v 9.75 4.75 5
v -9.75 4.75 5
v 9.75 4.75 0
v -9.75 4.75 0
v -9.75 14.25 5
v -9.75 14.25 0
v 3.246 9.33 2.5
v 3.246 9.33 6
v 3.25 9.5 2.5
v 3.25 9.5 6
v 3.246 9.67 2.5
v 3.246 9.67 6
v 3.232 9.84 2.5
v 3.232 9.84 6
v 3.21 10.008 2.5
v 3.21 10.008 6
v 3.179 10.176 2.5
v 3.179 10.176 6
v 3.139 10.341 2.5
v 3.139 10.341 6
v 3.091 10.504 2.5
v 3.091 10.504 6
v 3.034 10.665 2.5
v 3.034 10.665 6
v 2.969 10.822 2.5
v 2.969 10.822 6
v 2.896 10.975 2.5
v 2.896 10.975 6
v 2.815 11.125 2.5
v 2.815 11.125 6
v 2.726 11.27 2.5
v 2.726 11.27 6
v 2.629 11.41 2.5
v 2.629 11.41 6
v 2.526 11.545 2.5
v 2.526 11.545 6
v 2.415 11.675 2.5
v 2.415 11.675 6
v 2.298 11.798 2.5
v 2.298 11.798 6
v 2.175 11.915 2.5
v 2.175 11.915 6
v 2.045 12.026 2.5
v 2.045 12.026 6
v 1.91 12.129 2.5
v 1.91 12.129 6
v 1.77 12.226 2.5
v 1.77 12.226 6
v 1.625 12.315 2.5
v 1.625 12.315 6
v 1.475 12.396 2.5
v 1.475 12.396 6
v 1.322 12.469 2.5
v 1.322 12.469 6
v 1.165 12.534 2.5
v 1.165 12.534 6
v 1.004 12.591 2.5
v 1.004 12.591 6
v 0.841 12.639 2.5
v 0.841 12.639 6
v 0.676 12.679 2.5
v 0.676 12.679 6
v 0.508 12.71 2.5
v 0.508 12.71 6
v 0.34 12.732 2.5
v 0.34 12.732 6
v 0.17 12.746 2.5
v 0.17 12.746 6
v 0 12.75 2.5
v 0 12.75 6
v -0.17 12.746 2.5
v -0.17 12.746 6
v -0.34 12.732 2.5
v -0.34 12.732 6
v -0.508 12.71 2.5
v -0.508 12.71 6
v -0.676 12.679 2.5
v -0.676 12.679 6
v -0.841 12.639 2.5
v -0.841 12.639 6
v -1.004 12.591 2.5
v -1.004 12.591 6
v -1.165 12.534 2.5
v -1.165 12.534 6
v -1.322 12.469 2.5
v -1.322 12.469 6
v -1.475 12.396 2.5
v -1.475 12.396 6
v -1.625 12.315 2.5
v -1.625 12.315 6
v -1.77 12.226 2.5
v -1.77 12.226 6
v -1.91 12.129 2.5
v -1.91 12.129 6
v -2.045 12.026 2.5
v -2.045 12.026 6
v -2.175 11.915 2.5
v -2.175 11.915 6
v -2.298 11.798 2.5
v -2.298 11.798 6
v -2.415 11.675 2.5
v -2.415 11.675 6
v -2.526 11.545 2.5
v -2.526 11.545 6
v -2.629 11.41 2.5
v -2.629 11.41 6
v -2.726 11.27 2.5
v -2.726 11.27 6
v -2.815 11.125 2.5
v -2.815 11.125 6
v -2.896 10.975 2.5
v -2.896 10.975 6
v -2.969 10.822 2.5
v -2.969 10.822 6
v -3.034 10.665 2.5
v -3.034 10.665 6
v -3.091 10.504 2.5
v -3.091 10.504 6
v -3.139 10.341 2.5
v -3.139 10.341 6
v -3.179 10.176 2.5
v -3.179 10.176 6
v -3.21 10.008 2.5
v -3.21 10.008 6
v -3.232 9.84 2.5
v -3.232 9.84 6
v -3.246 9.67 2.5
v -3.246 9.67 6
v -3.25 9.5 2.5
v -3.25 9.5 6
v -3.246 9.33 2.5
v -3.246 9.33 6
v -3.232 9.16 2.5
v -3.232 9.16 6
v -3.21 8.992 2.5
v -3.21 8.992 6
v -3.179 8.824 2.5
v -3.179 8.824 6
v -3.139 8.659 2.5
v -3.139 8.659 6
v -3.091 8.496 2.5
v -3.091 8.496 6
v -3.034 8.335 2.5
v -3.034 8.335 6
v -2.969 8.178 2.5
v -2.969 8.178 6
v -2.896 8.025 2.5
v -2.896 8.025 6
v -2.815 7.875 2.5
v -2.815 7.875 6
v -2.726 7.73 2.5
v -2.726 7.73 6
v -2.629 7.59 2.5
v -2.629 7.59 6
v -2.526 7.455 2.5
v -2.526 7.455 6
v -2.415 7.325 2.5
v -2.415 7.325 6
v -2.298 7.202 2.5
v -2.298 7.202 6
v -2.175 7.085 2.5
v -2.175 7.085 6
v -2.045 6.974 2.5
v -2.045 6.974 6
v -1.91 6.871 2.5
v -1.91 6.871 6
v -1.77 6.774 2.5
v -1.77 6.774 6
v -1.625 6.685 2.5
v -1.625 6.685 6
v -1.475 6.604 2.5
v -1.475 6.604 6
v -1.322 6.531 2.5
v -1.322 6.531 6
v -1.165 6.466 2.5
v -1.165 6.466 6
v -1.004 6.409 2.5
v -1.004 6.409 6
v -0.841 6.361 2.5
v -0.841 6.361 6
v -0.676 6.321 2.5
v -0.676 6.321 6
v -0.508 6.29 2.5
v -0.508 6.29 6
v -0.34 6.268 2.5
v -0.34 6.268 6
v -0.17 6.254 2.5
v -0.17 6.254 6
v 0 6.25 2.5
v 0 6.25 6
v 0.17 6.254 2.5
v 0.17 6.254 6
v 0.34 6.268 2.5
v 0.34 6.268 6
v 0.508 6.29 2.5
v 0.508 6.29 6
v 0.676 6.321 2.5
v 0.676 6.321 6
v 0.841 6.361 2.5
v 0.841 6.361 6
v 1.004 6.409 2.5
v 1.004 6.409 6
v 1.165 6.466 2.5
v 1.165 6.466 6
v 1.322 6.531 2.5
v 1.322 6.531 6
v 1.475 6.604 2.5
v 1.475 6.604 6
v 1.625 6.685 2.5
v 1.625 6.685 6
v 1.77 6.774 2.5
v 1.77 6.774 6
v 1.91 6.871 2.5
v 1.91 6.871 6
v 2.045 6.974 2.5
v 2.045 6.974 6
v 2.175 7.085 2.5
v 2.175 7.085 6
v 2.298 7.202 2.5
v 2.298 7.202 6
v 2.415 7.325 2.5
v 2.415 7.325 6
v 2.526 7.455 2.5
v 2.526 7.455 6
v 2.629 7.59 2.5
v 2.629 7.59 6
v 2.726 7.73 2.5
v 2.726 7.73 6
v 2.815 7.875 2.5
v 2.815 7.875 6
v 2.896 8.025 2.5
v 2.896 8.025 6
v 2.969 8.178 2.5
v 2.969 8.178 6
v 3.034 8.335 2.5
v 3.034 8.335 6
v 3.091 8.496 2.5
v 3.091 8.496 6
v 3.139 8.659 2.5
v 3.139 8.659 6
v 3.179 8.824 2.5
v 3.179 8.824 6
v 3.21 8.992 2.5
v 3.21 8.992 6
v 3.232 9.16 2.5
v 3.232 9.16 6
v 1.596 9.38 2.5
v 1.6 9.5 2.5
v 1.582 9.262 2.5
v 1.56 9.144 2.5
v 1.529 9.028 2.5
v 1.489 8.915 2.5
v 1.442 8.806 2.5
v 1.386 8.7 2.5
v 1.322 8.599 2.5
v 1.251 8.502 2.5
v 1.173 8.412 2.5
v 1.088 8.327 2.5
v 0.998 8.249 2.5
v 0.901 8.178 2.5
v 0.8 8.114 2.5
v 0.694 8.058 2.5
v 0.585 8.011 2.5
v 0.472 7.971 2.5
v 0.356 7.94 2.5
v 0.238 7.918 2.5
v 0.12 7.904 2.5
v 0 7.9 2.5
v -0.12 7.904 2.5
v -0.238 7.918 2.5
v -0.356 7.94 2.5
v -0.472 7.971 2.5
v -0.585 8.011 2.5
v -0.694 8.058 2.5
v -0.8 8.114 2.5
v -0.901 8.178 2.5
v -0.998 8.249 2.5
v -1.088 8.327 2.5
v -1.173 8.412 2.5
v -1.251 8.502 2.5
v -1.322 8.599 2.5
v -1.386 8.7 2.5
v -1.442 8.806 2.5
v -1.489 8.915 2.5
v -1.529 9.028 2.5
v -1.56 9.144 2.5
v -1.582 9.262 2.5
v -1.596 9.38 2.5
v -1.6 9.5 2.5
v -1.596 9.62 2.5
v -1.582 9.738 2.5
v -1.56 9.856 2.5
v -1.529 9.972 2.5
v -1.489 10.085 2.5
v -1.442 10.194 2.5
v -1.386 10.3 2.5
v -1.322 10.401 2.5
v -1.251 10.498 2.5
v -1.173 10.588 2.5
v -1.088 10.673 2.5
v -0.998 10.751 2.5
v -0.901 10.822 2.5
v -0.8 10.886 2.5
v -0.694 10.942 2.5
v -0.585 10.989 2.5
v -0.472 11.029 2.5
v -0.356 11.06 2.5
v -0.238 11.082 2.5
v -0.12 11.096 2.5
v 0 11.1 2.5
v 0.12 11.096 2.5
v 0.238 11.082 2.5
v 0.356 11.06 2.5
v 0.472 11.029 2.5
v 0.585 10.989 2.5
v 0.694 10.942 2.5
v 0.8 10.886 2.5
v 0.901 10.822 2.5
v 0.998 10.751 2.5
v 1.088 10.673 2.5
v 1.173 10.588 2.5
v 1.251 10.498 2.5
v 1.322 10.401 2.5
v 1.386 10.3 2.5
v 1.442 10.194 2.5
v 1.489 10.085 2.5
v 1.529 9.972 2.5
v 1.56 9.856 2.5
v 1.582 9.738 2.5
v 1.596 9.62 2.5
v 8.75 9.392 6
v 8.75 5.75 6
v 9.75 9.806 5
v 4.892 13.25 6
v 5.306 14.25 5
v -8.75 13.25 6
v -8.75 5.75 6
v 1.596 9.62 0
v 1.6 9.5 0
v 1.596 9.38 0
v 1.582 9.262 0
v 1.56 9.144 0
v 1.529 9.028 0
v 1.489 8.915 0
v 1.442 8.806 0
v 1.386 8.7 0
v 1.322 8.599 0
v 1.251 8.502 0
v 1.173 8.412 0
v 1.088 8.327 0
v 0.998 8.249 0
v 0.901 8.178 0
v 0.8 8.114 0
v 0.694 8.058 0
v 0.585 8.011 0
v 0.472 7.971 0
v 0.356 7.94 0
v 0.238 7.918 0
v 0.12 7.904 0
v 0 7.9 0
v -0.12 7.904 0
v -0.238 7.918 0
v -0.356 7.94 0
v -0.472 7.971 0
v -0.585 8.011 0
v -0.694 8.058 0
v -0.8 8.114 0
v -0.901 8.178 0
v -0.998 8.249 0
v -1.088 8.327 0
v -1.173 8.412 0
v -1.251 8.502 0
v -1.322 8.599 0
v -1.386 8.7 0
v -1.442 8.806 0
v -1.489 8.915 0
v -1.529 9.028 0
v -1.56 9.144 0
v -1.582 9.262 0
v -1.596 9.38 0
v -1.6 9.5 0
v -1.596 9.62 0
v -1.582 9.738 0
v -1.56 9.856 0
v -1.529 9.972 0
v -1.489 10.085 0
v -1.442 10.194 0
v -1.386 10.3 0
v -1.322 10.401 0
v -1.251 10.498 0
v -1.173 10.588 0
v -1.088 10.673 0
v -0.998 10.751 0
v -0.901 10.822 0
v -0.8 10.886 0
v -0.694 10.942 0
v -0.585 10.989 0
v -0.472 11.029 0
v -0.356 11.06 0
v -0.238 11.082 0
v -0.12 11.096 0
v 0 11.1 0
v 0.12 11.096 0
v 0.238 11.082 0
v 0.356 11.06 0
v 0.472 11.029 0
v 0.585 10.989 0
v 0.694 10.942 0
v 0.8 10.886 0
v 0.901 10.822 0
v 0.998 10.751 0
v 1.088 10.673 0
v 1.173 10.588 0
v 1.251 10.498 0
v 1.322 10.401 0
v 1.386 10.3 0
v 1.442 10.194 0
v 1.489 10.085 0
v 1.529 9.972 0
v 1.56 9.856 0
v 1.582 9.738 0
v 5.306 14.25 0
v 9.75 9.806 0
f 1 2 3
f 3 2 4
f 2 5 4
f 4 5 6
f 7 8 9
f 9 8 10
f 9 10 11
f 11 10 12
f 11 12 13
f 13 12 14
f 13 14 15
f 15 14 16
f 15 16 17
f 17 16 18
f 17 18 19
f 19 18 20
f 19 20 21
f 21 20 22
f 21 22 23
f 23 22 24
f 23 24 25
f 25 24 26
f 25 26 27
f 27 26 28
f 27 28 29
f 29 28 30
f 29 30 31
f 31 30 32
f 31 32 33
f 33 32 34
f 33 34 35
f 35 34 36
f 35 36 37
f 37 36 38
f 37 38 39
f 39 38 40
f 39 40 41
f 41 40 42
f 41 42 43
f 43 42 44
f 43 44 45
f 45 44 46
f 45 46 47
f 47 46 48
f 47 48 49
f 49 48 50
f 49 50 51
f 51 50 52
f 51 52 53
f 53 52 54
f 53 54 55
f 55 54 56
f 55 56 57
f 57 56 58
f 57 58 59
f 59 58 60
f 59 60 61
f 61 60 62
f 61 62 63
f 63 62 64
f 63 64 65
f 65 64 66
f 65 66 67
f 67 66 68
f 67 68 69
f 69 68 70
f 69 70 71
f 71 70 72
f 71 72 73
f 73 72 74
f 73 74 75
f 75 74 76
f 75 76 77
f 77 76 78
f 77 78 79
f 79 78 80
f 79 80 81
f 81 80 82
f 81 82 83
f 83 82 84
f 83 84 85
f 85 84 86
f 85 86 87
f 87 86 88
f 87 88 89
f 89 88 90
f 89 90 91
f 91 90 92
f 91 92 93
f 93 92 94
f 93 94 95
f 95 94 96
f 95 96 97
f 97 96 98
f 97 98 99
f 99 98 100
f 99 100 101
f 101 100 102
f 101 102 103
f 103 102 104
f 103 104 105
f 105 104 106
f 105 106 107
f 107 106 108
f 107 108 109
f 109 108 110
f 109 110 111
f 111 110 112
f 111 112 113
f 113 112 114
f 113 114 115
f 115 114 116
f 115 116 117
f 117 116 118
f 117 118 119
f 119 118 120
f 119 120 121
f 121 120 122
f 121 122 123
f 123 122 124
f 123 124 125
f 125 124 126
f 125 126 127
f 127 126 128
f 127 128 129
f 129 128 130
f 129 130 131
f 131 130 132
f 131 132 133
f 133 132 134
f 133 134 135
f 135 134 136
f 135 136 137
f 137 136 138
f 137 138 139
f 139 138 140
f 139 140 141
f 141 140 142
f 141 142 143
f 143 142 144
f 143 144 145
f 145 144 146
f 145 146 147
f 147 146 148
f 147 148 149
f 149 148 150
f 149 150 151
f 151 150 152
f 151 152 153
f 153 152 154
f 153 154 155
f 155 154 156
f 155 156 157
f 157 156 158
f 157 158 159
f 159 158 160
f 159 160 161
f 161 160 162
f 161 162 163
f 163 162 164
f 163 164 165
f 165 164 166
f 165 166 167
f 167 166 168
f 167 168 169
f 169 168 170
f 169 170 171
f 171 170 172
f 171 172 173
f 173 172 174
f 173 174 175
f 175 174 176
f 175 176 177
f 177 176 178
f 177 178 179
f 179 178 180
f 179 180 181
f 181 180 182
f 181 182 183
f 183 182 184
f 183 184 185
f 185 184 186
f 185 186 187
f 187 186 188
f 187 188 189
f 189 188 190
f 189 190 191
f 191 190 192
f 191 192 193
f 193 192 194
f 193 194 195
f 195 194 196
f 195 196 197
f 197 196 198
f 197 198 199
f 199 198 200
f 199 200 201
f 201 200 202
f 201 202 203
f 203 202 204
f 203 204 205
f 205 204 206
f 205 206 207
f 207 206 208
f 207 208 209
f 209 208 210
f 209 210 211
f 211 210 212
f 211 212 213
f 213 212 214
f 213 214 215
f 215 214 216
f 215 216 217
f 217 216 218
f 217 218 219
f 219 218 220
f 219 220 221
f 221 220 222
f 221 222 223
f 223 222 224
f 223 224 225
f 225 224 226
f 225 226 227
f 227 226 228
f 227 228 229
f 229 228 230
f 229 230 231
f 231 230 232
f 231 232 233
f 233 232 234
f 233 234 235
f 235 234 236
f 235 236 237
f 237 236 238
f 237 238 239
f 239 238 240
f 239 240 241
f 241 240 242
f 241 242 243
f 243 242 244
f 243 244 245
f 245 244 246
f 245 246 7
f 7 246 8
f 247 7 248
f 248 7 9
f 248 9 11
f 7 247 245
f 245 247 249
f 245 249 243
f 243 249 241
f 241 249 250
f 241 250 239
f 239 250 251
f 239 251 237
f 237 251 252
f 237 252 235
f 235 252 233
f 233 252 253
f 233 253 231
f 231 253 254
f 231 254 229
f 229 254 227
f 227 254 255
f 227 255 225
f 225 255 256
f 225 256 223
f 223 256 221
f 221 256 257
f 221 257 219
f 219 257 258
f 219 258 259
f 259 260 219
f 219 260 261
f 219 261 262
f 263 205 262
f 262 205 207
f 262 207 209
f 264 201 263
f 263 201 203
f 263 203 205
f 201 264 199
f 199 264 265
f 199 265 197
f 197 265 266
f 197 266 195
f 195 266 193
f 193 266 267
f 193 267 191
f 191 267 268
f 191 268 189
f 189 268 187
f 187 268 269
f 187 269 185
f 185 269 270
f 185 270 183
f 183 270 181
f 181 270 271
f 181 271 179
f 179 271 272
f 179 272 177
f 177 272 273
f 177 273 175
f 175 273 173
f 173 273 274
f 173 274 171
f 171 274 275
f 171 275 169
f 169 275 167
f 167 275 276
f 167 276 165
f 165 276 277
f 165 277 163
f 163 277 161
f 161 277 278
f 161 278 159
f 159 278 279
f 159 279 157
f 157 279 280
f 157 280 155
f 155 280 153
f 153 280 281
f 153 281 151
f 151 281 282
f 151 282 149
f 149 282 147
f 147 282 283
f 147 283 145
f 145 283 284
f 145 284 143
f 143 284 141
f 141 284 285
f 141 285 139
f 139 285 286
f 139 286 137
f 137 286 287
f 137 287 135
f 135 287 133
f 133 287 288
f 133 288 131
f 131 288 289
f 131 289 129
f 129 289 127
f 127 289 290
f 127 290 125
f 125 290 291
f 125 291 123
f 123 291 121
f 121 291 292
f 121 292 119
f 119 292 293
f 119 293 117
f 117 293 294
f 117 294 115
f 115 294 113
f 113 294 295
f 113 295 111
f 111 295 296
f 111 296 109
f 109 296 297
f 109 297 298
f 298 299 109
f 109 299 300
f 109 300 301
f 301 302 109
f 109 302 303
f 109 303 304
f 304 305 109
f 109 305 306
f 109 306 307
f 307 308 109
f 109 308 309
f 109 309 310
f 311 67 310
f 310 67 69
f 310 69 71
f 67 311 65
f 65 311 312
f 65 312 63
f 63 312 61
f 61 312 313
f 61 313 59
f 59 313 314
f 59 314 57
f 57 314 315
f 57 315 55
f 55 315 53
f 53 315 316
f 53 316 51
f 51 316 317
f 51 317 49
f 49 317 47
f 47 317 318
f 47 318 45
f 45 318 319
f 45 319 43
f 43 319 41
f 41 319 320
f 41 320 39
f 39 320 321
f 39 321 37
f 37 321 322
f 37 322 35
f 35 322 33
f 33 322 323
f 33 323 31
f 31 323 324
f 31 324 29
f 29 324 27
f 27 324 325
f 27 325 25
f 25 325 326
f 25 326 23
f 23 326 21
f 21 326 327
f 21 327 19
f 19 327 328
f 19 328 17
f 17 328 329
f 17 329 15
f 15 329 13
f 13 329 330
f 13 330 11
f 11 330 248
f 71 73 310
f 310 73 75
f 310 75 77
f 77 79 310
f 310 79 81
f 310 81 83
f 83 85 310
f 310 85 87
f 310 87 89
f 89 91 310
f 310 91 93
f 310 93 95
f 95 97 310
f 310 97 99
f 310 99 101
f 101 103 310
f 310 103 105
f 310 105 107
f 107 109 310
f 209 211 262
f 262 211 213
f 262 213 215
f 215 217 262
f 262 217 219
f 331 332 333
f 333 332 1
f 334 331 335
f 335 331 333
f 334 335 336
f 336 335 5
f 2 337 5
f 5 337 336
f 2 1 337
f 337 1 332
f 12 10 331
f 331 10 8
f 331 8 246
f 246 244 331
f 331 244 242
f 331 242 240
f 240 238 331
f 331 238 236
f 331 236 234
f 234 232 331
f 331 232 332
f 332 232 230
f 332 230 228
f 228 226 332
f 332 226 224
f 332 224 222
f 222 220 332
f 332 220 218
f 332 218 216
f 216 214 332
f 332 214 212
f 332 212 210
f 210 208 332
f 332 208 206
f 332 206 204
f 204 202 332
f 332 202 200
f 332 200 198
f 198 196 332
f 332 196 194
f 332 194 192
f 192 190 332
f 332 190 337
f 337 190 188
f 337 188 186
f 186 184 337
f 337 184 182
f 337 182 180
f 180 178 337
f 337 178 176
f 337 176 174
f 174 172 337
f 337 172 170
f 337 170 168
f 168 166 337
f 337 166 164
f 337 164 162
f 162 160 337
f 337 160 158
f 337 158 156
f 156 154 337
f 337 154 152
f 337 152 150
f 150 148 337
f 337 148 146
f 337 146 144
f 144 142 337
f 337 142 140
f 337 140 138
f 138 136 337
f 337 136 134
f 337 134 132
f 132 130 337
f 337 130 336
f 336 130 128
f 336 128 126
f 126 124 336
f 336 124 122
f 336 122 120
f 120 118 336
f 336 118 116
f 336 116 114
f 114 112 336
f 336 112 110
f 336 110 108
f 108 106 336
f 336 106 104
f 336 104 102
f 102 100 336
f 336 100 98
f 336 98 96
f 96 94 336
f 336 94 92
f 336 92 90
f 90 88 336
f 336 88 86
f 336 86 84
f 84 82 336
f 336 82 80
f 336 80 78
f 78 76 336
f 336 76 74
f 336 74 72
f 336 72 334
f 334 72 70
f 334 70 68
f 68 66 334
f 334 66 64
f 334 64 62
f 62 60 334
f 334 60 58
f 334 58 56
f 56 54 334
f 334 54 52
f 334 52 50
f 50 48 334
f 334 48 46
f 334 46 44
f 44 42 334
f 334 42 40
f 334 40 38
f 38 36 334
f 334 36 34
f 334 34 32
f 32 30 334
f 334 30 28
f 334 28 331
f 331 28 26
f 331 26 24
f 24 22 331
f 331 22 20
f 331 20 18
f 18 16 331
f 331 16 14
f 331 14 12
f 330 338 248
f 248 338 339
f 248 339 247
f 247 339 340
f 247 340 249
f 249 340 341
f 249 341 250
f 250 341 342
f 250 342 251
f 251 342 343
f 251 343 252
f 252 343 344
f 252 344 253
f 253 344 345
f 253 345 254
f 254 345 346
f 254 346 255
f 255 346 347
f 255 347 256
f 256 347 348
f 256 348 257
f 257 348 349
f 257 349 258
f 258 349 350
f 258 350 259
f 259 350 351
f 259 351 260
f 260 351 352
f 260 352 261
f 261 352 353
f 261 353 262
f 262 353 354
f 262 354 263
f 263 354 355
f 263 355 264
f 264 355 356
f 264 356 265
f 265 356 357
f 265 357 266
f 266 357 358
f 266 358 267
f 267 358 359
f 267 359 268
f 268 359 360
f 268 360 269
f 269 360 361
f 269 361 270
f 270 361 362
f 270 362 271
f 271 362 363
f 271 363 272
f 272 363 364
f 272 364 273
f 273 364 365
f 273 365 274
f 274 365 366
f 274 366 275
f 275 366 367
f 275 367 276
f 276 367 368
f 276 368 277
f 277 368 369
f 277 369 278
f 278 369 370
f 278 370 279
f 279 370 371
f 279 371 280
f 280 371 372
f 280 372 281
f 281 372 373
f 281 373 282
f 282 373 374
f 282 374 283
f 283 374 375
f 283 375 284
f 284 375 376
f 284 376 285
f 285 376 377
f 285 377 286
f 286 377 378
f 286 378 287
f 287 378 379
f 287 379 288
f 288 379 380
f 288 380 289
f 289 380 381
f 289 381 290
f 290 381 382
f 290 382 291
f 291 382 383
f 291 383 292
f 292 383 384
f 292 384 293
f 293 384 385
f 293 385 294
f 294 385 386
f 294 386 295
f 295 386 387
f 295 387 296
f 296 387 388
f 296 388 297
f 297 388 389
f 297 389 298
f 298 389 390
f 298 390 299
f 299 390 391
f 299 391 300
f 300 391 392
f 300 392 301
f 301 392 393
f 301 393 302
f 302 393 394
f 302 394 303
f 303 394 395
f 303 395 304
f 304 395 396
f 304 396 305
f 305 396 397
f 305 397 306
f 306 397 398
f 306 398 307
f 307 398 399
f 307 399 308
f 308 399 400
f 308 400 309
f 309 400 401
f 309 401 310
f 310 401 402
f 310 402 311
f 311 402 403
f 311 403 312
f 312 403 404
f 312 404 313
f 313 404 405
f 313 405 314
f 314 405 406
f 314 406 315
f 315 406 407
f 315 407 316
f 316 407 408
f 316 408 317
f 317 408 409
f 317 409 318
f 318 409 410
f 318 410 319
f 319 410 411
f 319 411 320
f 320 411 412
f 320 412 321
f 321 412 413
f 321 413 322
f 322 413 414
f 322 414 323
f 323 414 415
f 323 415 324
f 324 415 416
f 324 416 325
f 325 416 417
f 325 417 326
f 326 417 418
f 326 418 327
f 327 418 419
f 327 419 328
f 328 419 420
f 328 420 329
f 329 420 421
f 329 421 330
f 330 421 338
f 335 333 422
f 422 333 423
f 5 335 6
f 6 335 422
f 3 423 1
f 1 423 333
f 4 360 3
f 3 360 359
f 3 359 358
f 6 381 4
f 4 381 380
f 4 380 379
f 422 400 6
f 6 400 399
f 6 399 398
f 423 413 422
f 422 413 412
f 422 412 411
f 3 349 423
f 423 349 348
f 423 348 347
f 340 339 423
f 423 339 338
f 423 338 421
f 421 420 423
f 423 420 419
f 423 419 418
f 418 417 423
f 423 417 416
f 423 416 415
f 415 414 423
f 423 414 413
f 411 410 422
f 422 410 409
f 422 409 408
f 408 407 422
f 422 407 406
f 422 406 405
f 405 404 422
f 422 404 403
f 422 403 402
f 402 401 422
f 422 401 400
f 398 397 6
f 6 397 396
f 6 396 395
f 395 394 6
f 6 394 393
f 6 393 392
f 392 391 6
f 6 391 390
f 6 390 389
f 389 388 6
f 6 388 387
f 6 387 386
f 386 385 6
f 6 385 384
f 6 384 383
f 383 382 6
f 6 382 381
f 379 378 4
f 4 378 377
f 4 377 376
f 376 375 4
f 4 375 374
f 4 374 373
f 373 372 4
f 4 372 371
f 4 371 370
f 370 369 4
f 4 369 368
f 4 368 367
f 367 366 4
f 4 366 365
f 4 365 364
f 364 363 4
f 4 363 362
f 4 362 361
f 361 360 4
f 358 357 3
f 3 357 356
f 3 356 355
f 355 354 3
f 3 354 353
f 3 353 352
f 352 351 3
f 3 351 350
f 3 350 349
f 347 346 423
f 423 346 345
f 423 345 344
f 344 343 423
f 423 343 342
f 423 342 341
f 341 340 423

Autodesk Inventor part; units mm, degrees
ref_plane "YZ Plane" through (0, 0, 0) normal (1, 0, 0) x (0, 1, 0)
ref_plane "XZ Plane" through (0, 0, 0) normal (0, 1, 0) x (-1, 0, 0)
ref_plane "XY Plane" through (0, 0, 0) normal (0, 0, 1) x (1, 0, 0)
sketch "Эскиз1" plane through (0, 0, 0) normal (0, 0, 1) x (1, 0, 0)
  line L0 (10, 5) -> (10, -0.4101) projected
  line L1 (-10, 5) -> (10, 5) projected
  line L2 (-10, -5) -> (-10, 5) projected
  line L3 (5.4101, -5) -> (-10, -5) projected
  line L4 (10, -0.4101) -> (5.4101, -5) projected
  line L5 (9.75, -0.3065) -> (9.75, 4.75)
  line L6 (9.75, 4.75) -> (-9.75, 4.75)
  line L7 (-9.75, 4.75) -> (-9.75, -4.75)
  line L8 (-9.75, -4.75) -> (5.3065, -4.75)
  line L9 (5.3065, -4.75) -> (9.75, -0.3065)
  circle A0 centre (0, 0) radius 1.6 projected
  line L10 (10, 5) -> (10, -0.4101) projected
  line L11 (-10, 5) -> (10, 5) projected
  line L12 (-10, -5) -> (-10, 5) projected
  line L13 (5.4101, -5) -> (-10, -5) projected
  line L14 (10, -0.4101) -> (5.4101, -5) projected
  circle A1 centre (0, 0) radius 1.6 projected
  dimension "d0" = 0.25
extrude "Выдавливание1" add sketch "Эскиз1" along normal blind 6 contours L9 L8 L7 L6 L5
chamfer "Фаска1" distance 1 angle 45 5 edges at (-2.2218, -4.75, 6) (7.5282, -2.5282, 6) (9.75, 2.2218, 6) (0, 4.75, 6) (-9.75, 0, 6)
sketch "Эскиз2" plane through (0, 0, 6) normal (0, 0, 1) x (1, 0, 0)
  circle A0 centre (0, 0) radius 3.25
  dimension "d6" = 6.5
extrude "Выдавливание2" cut sketch "Эскиз2" against normal blind 3.5
mirror "Зеркальное отражение1" about plane through (9.75, 4.75, 0) normal (0, 1, 0) of "Выдавливание1", "Фаска1", "Выдавливание2"
sketch "Эскиз3" plane through (0, 0, 6) normal (0, 0, 1) x (1, 0, 0)
  line L0 (9.75, 4.75) -> (-9.75, 4.75) projected
  line L1 (-9.75, 4.75) -> (11, 4.75)
  line L2 (11, 4.75) -> (11, -6)
  line L3 (11, -6) -> (-9.75, -6)
  line L4 (-9.75, -6) -> (-9.75, 4.75)
  point P0 (0, 0)
extrude "Выдавливание3" cut sketch "Эскиз3" against normal up to surface (6 mm away)
properties part number "leg3"
